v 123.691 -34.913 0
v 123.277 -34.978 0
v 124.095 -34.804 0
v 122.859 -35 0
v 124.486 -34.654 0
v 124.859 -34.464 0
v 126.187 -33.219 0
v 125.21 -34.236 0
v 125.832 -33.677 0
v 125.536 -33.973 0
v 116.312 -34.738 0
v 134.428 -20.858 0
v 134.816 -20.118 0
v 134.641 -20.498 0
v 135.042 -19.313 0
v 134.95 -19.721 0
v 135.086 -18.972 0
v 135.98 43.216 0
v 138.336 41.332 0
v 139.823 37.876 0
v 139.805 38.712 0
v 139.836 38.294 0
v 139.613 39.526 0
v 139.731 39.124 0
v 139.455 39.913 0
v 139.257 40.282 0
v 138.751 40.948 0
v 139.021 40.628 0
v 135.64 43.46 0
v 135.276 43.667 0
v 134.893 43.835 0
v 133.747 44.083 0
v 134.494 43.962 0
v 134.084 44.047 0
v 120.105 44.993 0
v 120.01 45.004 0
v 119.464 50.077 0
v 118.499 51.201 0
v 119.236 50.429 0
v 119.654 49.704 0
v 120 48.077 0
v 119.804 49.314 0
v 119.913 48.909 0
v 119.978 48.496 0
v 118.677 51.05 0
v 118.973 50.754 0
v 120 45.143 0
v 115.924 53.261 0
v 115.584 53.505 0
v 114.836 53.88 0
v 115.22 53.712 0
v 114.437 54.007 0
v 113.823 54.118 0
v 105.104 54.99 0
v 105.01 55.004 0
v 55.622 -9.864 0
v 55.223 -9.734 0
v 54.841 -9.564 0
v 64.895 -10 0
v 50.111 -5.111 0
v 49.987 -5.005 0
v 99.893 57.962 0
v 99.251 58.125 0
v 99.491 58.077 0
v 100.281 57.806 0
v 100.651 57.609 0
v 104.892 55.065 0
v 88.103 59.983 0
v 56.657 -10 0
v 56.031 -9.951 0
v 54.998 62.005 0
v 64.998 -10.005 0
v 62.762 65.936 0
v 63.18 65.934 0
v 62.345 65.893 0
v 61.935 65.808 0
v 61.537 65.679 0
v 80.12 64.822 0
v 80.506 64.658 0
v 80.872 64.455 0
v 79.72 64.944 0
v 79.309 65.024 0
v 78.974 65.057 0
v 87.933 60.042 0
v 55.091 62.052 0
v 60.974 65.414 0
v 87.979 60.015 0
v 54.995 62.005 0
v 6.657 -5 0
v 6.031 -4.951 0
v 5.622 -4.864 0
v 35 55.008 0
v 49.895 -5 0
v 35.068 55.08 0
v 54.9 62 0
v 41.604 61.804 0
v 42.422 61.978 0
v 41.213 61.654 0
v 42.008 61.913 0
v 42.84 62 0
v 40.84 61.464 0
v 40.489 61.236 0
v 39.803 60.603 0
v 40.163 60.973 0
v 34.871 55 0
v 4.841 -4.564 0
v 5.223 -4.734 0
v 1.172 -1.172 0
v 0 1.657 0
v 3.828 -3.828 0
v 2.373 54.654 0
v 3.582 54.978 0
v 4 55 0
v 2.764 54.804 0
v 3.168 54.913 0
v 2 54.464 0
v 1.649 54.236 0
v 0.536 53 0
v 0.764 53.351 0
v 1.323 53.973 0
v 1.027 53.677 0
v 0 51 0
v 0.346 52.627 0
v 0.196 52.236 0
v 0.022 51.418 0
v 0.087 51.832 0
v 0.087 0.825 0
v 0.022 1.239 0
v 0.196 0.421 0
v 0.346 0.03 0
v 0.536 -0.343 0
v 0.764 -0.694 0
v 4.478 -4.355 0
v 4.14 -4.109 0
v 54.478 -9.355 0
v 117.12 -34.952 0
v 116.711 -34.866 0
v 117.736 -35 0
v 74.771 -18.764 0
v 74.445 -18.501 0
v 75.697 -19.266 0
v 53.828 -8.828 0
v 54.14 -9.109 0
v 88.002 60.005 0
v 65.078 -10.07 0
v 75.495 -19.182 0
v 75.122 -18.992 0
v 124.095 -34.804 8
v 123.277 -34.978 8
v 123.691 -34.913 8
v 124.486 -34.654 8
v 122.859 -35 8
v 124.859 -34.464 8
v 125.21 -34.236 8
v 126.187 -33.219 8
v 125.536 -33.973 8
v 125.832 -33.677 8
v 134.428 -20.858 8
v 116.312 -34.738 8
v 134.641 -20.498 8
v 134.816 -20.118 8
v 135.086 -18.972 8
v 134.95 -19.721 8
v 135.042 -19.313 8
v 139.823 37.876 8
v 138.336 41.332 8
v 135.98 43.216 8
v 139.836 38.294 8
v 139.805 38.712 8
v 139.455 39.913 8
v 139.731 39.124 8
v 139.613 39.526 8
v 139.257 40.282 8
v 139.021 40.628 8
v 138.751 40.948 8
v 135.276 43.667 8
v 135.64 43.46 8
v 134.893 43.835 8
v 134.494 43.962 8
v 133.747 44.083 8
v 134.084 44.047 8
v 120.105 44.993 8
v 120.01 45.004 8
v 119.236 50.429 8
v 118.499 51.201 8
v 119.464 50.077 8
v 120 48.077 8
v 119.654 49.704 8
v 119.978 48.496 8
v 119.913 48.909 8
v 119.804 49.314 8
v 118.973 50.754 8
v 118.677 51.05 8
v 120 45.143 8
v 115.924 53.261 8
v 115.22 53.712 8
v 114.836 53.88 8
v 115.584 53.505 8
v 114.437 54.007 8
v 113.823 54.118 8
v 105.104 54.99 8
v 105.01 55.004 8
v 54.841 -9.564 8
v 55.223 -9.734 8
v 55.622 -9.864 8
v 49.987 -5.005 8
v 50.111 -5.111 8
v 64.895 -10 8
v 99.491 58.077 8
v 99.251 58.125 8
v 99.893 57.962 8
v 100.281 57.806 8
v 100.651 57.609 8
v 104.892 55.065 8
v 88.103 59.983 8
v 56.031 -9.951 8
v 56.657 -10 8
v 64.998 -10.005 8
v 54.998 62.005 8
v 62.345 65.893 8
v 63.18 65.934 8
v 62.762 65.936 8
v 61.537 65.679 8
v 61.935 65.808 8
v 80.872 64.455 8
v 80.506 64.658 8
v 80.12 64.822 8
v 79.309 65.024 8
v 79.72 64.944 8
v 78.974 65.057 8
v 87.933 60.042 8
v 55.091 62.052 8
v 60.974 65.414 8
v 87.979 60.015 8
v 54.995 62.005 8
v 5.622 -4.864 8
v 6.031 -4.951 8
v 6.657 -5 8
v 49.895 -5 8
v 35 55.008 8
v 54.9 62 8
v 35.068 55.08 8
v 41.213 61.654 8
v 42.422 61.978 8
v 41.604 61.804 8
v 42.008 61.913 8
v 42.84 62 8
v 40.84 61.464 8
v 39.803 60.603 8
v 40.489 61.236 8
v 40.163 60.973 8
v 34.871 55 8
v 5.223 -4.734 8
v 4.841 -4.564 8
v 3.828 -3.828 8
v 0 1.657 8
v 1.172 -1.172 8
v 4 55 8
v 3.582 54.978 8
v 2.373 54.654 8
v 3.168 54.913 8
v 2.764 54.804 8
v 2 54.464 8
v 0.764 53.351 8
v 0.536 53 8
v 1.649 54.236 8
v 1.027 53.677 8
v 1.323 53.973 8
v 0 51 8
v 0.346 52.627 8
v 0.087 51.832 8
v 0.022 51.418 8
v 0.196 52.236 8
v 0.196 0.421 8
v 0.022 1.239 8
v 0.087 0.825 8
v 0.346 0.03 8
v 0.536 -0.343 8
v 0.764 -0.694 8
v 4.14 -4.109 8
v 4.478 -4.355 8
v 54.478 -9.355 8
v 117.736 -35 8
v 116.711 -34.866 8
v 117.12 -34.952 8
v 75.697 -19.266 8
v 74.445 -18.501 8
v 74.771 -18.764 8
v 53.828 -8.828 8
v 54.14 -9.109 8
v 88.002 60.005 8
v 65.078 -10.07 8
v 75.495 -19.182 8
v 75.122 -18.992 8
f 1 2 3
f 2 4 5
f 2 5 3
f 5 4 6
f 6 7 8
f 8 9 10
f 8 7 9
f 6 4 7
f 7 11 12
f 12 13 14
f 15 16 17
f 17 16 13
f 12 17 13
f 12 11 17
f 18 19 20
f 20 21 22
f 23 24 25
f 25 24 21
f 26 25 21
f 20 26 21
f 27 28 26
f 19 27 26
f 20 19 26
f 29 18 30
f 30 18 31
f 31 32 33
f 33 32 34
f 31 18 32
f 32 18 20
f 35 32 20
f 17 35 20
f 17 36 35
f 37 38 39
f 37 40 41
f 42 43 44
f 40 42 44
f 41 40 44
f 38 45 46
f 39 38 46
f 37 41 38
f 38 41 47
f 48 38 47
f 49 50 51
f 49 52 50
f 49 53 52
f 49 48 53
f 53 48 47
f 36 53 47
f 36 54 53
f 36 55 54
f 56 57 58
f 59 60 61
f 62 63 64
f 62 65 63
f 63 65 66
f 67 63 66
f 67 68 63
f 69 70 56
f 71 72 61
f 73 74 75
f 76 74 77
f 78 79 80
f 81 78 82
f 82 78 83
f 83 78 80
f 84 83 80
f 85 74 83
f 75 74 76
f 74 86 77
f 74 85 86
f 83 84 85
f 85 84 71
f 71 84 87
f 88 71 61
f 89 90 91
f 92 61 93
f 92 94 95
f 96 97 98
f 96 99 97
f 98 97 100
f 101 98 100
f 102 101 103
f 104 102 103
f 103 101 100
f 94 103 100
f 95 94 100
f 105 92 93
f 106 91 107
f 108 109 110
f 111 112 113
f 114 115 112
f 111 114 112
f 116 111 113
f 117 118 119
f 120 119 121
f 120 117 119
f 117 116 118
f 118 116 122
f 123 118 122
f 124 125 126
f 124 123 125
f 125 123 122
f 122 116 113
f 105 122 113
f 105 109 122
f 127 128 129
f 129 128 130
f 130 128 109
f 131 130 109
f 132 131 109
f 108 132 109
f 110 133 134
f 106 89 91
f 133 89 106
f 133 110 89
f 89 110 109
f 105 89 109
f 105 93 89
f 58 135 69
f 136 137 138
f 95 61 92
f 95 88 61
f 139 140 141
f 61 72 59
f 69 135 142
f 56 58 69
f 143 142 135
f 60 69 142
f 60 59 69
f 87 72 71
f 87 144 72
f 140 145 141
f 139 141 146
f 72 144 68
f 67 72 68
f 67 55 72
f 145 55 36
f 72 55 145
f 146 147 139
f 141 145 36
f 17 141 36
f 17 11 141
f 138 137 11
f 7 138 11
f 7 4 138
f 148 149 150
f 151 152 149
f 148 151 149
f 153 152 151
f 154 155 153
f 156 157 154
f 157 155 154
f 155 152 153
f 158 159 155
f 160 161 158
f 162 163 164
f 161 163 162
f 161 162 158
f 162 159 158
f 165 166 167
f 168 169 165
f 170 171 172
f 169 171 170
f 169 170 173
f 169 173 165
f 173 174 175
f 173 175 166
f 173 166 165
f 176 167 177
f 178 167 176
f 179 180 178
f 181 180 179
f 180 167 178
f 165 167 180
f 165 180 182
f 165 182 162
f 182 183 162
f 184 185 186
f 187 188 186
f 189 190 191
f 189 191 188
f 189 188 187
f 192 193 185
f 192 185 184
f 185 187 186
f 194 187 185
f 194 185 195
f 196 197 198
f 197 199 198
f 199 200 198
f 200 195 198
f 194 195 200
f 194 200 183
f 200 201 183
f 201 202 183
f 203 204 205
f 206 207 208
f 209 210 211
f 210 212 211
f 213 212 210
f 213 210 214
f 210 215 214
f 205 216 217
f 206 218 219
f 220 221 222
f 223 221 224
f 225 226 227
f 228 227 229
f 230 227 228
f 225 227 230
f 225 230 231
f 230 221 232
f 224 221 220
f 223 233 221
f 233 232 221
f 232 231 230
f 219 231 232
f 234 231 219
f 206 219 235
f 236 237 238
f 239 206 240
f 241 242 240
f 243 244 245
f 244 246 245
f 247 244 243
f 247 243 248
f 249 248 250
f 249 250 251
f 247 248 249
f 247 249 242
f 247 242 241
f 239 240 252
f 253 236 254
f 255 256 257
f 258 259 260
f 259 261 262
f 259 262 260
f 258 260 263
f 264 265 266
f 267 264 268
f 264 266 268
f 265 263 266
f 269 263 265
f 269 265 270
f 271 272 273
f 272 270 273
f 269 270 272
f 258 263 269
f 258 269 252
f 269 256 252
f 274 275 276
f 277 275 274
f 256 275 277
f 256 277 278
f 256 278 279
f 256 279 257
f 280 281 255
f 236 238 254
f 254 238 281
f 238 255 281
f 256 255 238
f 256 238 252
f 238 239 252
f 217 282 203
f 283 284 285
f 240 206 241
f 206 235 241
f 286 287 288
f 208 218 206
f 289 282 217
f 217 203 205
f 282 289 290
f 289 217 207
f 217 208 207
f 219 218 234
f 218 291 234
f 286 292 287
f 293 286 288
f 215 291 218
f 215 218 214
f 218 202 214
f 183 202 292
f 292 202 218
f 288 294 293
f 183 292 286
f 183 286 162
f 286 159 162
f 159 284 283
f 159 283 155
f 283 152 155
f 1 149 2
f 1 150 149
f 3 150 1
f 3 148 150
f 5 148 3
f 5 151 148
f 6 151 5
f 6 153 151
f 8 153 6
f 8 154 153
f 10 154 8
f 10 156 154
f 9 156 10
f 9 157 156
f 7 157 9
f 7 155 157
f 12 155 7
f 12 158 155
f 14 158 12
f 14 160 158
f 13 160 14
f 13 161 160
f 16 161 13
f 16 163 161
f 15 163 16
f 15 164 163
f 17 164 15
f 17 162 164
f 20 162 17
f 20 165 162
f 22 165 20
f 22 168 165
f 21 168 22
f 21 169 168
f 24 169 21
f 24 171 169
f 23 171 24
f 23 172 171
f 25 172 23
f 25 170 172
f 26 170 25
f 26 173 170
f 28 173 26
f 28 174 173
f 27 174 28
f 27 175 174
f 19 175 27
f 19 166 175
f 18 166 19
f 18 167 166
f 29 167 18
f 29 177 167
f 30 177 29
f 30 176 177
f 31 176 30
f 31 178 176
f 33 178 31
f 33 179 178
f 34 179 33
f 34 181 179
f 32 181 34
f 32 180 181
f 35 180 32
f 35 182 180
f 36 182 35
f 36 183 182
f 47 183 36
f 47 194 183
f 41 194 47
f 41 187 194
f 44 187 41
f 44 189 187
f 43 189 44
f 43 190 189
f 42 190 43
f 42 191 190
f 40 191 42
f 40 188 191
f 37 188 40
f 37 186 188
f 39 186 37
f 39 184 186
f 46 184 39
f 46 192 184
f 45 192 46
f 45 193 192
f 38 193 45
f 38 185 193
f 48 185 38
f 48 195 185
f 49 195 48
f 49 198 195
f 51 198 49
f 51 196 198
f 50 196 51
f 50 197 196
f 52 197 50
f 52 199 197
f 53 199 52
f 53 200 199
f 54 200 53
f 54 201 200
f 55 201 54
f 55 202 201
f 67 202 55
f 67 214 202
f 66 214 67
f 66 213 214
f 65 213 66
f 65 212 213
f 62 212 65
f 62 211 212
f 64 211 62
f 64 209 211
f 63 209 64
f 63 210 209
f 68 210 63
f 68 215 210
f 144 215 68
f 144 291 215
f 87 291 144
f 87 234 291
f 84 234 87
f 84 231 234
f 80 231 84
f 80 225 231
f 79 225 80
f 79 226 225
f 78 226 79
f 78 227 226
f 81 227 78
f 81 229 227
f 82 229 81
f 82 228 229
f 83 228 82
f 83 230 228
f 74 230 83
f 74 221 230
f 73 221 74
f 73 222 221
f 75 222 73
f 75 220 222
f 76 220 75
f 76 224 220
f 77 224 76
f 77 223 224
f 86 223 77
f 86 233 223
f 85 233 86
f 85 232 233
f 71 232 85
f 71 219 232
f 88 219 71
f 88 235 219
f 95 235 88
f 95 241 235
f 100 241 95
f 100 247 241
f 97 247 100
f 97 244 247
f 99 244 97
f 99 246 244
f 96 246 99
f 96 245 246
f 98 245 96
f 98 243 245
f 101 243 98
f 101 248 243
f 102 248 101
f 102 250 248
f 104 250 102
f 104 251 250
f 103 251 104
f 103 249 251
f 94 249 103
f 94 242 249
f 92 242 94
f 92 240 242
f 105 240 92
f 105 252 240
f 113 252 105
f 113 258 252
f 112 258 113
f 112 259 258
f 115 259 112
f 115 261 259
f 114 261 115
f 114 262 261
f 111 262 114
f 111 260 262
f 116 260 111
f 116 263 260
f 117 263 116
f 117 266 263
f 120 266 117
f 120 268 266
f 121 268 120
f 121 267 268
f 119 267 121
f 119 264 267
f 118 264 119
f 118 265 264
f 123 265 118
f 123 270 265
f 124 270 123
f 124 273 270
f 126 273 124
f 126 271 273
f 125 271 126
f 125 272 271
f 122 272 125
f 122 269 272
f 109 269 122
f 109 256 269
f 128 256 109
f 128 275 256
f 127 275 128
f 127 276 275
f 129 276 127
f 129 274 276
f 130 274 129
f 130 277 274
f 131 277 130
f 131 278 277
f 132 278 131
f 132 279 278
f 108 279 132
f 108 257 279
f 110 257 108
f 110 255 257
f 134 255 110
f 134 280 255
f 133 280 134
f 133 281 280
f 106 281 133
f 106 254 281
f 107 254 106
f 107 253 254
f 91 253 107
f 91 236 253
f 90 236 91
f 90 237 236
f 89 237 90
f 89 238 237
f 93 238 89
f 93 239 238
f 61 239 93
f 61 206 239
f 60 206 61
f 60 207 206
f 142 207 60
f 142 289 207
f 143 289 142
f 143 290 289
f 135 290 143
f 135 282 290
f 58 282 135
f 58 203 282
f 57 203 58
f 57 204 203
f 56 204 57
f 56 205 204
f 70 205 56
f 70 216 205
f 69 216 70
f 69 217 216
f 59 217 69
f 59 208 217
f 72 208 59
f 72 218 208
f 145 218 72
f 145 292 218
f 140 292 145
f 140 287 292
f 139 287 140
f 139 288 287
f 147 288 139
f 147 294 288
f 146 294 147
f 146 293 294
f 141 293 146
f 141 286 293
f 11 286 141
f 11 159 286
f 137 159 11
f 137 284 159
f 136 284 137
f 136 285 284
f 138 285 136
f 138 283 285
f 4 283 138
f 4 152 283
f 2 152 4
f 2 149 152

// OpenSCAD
// НАСТРОЙКИ КОРПУСА
cell = 1;             // Размер мм
thickness = 8;        // Толщина (высота) основания клавиатуры в мм
roundness = 4;        // Радиус скругления углов в мм

// Включаем сглаживание окружностей
$fn = 60;

// Сборка 3D модели
linear_extrude(height = thickness) {
    smooth_body(r = roundness);
}

// Модуль для скругления контура
module smooth_body(r) {
    offset(r = r) {
        offset(r = -r) {
            keyboard_contour();
        }
    }
}

// Базовый контур по точкам (координаты в клетках, умноженные на cell)
module keyboard_contour() {
    polygon(points = [
        [0 ,   0 ],     
        [0 ,   55 ],    
        [35 ,   55 ],    
        [41 ,  62 ],  
        [55 ,  62 ],  
        [62 ,  66 ],    
        [80 ,  65 ],    
        [88 , 60 ],    
        [100 ,  58 ],    
        [105 ,  55 ], 
        [115 ,  54 ],    
        [120 ,  50 ],
        [120 ,  45 ],
        [135 ,  44 ],
        [140 ,  40 ],
        [140 ,  40 ],
        [135 ,  -20 ],
        [125 ,  -35 ],
        [117 ,  -35 ],
        [75 ,  -19 ],
        [65 ,  -10 ],
        [55 ,  -10 ],
        [50 ,  -5 ],
        [5 ,   -5 ]      
    ]);
}
